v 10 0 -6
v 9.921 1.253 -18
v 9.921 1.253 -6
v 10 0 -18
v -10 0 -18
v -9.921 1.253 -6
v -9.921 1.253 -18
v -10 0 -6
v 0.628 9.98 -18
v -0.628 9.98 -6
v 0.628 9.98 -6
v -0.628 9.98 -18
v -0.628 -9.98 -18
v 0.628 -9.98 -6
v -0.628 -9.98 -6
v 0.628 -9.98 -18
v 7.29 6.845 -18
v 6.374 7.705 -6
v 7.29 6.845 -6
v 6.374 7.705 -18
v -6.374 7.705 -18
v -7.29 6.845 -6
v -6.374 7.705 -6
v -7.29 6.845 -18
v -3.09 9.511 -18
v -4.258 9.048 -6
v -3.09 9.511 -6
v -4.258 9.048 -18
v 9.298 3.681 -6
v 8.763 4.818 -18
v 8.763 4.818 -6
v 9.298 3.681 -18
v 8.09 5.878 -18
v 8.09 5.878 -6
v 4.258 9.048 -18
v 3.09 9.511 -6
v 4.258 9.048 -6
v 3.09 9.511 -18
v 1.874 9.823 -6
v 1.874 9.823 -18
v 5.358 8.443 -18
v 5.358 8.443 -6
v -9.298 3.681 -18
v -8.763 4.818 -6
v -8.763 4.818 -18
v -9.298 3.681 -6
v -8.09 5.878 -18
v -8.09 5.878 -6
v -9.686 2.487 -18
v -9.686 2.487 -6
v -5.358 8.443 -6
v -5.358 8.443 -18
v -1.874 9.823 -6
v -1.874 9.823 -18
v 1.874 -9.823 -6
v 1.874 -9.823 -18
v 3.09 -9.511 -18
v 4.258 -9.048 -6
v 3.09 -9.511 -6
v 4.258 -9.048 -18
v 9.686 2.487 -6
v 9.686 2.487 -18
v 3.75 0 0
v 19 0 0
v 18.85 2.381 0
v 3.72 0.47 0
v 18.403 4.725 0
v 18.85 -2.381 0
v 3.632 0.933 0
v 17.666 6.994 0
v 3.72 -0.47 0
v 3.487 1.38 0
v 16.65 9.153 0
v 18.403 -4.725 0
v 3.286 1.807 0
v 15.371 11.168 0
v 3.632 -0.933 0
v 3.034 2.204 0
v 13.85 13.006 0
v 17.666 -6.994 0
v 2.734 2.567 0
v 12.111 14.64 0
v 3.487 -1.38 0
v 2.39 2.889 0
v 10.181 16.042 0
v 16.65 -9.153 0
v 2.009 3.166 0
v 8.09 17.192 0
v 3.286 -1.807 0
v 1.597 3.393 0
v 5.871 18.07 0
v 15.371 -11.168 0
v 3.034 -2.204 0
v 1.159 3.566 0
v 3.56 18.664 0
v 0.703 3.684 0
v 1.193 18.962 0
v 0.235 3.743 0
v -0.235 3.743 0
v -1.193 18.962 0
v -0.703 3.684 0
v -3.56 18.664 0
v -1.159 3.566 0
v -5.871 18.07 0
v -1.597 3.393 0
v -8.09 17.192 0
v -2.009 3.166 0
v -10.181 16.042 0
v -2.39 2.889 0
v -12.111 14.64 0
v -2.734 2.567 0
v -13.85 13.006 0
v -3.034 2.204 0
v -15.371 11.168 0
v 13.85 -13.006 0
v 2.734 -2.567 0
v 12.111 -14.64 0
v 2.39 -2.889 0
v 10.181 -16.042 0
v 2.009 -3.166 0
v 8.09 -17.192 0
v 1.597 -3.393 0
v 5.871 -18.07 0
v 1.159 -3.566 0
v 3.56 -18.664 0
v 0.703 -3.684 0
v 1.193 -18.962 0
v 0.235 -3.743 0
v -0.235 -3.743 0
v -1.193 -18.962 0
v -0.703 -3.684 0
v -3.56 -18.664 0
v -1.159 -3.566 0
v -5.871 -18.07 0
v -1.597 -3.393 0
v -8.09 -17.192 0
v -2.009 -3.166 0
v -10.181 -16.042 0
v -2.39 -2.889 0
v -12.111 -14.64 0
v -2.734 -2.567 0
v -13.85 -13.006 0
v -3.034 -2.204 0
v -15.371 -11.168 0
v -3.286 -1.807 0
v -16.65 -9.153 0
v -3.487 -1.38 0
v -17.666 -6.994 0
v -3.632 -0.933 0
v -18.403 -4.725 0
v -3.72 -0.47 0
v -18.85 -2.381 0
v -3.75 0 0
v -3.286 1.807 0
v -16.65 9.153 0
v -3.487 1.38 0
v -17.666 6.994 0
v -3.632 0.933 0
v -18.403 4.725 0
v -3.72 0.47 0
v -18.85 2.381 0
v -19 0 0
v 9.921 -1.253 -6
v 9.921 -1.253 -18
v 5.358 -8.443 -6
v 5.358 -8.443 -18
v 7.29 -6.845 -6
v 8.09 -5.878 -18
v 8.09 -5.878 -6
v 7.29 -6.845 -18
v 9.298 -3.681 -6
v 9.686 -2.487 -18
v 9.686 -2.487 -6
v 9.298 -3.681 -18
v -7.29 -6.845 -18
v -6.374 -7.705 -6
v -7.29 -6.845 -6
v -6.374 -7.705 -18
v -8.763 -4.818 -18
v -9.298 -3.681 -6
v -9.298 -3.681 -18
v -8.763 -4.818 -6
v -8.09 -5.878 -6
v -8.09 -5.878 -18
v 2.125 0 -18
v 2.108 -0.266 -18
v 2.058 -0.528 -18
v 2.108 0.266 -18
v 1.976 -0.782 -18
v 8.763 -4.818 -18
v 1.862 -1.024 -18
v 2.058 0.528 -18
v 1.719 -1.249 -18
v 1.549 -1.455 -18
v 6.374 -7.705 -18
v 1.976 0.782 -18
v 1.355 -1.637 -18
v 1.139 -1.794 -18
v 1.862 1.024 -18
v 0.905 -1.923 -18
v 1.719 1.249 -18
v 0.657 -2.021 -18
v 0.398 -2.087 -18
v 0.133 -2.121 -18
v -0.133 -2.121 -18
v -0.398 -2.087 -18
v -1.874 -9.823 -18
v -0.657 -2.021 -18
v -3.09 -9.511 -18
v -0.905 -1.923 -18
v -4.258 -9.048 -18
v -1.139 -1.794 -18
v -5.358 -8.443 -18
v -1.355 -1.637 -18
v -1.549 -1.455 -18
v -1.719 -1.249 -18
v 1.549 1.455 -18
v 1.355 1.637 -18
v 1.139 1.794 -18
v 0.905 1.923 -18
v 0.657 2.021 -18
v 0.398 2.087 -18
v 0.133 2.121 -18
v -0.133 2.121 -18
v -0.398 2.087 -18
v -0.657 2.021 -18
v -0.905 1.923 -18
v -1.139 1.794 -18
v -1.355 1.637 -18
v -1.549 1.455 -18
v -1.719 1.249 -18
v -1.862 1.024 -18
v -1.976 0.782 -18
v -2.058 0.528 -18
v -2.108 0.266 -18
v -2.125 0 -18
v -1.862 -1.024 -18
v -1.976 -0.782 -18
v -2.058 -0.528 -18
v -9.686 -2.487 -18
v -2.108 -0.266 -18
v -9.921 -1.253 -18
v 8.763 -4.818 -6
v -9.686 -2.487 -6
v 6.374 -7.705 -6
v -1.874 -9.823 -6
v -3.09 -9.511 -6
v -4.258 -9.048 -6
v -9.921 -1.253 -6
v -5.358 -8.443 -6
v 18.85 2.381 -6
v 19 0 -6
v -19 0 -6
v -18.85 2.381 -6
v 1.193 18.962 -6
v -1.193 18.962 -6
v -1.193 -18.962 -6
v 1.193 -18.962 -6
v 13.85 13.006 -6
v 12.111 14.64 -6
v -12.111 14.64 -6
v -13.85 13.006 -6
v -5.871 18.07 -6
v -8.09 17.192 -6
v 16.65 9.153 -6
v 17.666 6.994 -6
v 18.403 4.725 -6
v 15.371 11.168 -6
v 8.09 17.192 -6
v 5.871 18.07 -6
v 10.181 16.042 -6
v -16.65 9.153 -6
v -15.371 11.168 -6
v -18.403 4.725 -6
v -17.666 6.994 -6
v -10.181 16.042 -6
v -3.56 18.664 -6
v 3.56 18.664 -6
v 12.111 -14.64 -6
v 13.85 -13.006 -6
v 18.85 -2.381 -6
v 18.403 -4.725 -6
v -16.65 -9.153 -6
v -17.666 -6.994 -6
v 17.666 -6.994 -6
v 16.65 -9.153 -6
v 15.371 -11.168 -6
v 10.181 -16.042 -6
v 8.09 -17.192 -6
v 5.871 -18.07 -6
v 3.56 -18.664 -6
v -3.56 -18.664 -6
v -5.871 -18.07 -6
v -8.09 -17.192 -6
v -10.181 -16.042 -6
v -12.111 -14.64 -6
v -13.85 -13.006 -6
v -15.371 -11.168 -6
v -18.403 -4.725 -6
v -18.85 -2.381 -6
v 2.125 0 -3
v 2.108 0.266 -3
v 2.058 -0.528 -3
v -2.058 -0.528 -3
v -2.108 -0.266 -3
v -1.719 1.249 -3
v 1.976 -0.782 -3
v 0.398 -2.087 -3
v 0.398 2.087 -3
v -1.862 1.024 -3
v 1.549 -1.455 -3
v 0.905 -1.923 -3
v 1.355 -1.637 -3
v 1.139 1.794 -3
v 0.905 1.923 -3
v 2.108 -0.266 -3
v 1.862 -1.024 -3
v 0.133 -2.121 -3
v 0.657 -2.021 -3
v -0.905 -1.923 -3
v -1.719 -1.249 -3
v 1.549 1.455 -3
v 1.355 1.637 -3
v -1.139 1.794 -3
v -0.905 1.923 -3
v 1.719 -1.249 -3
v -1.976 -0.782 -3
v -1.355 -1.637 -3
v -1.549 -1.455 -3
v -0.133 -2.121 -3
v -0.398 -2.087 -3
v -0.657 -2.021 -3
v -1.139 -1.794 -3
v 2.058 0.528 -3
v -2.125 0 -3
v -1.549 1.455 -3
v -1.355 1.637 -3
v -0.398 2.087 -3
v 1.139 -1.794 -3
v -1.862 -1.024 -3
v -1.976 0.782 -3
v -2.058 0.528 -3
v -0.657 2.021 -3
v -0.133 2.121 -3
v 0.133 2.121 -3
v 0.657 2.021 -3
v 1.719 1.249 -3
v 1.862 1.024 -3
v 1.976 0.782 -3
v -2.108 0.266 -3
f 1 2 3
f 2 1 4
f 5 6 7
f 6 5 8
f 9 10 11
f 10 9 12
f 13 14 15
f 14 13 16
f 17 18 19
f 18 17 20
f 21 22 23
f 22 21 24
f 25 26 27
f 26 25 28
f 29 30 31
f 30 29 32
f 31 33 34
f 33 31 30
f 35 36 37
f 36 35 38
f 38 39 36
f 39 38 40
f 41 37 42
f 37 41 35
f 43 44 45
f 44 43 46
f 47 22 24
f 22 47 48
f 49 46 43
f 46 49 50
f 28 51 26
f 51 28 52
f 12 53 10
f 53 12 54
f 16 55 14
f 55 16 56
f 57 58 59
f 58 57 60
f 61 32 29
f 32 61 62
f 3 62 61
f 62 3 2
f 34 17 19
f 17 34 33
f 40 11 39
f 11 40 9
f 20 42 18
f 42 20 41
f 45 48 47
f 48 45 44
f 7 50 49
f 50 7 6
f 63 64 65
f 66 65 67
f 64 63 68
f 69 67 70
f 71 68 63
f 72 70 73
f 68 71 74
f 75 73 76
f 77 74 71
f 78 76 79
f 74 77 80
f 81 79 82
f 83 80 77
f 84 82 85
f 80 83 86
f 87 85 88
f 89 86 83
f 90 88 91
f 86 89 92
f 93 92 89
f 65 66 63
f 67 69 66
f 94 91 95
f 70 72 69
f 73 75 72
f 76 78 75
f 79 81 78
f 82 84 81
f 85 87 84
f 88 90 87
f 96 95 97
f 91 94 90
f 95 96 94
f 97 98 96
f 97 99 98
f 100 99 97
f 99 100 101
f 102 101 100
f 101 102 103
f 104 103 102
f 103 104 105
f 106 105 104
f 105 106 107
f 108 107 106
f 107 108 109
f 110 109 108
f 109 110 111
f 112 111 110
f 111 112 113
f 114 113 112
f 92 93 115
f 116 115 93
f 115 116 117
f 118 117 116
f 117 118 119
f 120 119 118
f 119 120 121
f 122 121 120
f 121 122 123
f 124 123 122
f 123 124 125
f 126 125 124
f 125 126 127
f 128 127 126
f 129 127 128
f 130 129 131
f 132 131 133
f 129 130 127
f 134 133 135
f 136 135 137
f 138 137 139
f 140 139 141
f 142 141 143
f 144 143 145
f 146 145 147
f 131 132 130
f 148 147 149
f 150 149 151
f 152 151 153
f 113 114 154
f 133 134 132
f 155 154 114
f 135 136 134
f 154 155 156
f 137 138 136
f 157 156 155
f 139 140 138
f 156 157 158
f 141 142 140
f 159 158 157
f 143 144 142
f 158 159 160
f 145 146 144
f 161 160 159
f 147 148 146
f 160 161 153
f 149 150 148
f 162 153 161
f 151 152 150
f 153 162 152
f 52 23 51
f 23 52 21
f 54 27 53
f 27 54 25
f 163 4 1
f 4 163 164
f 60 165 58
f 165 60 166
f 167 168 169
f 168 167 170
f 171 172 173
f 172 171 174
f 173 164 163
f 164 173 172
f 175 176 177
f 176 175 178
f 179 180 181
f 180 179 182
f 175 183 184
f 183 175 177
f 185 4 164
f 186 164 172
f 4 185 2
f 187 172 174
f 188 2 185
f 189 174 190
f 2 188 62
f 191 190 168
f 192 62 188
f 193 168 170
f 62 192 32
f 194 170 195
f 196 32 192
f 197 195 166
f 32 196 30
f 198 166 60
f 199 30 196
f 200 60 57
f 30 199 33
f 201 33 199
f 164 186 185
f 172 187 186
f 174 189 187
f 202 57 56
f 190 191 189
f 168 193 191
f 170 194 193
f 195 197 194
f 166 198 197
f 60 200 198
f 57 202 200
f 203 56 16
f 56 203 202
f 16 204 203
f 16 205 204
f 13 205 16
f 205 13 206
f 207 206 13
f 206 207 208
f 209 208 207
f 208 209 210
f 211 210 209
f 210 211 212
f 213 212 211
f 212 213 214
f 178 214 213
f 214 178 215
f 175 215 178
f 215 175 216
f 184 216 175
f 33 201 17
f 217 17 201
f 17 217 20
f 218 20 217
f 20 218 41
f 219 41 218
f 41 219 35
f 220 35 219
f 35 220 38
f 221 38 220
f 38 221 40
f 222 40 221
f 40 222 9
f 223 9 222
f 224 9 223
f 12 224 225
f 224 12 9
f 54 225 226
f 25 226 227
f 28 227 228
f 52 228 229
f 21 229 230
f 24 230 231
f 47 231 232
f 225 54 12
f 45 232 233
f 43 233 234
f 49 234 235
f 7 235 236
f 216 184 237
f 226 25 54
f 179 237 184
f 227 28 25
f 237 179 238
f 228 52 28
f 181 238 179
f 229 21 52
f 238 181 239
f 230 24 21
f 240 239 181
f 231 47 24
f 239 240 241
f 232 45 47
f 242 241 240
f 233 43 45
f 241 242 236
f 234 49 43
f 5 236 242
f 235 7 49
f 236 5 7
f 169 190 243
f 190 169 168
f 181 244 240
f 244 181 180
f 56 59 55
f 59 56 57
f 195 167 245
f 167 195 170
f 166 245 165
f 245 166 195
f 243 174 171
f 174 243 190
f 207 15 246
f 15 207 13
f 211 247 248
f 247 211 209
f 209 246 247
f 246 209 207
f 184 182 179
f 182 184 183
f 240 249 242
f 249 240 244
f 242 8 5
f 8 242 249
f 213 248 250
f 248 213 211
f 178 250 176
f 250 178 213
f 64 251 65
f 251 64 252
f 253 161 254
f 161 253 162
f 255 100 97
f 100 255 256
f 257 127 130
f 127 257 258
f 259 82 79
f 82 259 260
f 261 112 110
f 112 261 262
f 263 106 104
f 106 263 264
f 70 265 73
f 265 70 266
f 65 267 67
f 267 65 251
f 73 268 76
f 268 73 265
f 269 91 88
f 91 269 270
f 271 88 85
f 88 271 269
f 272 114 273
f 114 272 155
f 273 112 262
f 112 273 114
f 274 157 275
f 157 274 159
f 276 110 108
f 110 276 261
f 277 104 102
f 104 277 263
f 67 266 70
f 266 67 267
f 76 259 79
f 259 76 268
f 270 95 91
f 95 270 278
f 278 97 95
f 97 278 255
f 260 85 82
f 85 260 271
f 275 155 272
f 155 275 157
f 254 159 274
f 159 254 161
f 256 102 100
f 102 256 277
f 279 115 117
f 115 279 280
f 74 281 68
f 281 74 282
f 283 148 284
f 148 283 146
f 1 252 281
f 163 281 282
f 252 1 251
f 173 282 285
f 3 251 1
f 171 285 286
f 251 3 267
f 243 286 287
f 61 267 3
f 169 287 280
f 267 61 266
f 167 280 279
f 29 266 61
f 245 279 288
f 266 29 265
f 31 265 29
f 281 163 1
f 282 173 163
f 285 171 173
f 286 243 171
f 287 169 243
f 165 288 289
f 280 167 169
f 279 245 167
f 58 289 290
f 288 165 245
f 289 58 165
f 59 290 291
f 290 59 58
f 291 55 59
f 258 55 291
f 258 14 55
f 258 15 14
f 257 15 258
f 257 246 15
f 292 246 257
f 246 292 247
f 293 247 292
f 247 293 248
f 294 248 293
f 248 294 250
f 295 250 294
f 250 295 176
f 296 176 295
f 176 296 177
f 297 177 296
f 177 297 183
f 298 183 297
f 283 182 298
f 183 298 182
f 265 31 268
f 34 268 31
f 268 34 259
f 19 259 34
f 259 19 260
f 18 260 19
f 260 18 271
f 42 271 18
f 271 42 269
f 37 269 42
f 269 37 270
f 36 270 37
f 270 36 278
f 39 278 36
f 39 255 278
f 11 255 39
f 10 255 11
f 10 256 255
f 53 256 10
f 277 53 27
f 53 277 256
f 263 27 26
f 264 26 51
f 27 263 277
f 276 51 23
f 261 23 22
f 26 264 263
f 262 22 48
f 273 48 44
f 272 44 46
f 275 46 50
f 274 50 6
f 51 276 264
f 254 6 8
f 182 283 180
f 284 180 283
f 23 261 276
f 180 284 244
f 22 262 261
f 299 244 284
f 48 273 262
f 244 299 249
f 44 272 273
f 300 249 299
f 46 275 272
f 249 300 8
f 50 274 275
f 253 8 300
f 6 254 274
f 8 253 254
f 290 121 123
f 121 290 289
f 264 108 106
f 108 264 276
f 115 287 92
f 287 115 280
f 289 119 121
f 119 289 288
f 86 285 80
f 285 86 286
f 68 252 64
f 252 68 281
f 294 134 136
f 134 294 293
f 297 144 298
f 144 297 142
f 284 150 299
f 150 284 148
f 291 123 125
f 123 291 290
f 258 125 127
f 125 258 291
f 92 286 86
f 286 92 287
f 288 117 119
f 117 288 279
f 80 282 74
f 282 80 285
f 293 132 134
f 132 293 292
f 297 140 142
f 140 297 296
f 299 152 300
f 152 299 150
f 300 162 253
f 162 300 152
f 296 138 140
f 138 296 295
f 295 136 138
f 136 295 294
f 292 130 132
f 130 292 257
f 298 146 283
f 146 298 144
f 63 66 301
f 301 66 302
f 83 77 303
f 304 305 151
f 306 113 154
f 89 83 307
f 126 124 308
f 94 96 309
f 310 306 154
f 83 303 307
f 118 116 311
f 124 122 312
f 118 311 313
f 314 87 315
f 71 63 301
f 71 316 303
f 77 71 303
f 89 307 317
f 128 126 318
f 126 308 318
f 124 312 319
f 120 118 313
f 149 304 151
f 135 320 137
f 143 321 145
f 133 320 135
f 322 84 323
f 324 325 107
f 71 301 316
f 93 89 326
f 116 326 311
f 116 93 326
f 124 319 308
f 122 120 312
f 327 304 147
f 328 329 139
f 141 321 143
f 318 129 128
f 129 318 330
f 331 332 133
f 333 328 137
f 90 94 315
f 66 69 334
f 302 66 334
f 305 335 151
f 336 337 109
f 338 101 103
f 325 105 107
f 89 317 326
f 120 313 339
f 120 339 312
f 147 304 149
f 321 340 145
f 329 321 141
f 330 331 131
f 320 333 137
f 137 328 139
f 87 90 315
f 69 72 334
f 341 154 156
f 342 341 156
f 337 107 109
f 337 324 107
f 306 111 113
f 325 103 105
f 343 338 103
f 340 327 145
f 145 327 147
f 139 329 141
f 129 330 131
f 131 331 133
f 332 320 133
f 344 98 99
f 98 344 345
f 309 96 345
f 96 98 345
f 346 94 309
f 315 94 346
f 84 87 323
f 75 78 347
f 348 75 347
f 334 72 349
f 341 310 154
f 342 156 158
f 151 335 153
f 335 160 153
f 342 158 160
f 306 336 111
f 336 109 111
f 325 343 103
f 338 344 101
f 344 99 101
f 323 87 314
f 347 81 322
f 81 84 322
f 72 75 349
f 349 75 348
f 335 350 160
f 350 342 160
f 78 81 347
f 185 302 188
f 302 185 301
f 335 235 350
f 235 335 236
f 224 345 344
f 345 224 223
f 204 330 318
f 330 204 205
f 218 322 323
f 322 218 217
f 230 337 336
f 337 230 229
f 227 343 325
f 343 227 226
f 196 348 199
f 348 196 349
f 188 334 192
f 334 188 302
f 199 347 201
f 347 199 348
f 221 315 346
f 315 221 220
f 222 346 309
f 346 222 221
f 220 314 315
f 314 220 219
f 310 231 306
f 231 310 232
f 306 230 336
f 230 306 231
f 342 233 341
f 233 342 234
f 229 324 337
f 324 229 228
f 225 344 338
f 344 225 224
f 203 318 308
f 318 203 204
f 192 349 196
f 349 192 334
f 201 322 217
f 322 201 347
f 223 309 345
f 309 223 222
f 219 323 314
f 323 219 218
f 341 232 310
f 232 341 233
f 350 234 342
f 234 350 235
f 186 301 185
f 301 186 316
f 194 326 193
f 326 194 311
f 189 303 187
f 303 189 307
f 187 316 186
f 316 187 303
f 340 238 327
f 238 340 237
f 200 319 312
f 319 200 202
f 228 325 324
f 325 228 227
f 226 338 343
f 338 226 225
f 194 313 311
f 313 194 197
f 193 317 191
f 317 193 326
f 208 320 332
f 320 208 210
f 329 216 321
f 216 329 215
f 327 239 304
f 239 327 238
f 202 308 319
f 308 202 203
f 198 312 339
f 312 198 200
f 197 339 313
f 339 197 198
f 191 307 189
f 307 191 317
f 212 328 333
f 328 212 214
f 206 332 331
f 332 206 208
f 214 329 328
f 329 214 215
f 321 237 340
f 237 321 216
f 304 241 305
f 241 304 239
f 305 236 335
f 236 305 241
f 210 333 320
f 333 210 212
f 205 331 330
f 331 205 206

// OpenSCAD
$fn = 50;


difference() {
	union() {
		translate(v = [0, 0, -18.0000000000]) {
			cylinder(h = 18, r = 10.0000000000);
		}
		translate(v = [0, 0, -6.0000000000]) {
			cylinder(h = 6, r = 19.0000000000);
		}
	}
	union() {
		translate(v = [0, 0, 0]) {
			rotate(a = [0, 0, 0]) {
				difference() {
					union() {
						#translate(v = [0, 0, -18.0000000000]) {
							cylinder(h = 18, r = 2.0000000000);
						}
						#translate(v = [0, 0, -3]) {
							cylinder(h = 3, r = 10.0000000000, r1 = 2.1250000000, r2 = 3.7500000000);
						}
						#translate(v = [0, 0, -18.0000000000]) {
							cylinder(h = 18, r = 2.1250000000);
						}
						#translate(v = [0, 0, -18.0000000000]) {
							cylinder(h = 18, r = 2.0000000000);
						}
					}
					union();
				}
			}
		}
	}
}
